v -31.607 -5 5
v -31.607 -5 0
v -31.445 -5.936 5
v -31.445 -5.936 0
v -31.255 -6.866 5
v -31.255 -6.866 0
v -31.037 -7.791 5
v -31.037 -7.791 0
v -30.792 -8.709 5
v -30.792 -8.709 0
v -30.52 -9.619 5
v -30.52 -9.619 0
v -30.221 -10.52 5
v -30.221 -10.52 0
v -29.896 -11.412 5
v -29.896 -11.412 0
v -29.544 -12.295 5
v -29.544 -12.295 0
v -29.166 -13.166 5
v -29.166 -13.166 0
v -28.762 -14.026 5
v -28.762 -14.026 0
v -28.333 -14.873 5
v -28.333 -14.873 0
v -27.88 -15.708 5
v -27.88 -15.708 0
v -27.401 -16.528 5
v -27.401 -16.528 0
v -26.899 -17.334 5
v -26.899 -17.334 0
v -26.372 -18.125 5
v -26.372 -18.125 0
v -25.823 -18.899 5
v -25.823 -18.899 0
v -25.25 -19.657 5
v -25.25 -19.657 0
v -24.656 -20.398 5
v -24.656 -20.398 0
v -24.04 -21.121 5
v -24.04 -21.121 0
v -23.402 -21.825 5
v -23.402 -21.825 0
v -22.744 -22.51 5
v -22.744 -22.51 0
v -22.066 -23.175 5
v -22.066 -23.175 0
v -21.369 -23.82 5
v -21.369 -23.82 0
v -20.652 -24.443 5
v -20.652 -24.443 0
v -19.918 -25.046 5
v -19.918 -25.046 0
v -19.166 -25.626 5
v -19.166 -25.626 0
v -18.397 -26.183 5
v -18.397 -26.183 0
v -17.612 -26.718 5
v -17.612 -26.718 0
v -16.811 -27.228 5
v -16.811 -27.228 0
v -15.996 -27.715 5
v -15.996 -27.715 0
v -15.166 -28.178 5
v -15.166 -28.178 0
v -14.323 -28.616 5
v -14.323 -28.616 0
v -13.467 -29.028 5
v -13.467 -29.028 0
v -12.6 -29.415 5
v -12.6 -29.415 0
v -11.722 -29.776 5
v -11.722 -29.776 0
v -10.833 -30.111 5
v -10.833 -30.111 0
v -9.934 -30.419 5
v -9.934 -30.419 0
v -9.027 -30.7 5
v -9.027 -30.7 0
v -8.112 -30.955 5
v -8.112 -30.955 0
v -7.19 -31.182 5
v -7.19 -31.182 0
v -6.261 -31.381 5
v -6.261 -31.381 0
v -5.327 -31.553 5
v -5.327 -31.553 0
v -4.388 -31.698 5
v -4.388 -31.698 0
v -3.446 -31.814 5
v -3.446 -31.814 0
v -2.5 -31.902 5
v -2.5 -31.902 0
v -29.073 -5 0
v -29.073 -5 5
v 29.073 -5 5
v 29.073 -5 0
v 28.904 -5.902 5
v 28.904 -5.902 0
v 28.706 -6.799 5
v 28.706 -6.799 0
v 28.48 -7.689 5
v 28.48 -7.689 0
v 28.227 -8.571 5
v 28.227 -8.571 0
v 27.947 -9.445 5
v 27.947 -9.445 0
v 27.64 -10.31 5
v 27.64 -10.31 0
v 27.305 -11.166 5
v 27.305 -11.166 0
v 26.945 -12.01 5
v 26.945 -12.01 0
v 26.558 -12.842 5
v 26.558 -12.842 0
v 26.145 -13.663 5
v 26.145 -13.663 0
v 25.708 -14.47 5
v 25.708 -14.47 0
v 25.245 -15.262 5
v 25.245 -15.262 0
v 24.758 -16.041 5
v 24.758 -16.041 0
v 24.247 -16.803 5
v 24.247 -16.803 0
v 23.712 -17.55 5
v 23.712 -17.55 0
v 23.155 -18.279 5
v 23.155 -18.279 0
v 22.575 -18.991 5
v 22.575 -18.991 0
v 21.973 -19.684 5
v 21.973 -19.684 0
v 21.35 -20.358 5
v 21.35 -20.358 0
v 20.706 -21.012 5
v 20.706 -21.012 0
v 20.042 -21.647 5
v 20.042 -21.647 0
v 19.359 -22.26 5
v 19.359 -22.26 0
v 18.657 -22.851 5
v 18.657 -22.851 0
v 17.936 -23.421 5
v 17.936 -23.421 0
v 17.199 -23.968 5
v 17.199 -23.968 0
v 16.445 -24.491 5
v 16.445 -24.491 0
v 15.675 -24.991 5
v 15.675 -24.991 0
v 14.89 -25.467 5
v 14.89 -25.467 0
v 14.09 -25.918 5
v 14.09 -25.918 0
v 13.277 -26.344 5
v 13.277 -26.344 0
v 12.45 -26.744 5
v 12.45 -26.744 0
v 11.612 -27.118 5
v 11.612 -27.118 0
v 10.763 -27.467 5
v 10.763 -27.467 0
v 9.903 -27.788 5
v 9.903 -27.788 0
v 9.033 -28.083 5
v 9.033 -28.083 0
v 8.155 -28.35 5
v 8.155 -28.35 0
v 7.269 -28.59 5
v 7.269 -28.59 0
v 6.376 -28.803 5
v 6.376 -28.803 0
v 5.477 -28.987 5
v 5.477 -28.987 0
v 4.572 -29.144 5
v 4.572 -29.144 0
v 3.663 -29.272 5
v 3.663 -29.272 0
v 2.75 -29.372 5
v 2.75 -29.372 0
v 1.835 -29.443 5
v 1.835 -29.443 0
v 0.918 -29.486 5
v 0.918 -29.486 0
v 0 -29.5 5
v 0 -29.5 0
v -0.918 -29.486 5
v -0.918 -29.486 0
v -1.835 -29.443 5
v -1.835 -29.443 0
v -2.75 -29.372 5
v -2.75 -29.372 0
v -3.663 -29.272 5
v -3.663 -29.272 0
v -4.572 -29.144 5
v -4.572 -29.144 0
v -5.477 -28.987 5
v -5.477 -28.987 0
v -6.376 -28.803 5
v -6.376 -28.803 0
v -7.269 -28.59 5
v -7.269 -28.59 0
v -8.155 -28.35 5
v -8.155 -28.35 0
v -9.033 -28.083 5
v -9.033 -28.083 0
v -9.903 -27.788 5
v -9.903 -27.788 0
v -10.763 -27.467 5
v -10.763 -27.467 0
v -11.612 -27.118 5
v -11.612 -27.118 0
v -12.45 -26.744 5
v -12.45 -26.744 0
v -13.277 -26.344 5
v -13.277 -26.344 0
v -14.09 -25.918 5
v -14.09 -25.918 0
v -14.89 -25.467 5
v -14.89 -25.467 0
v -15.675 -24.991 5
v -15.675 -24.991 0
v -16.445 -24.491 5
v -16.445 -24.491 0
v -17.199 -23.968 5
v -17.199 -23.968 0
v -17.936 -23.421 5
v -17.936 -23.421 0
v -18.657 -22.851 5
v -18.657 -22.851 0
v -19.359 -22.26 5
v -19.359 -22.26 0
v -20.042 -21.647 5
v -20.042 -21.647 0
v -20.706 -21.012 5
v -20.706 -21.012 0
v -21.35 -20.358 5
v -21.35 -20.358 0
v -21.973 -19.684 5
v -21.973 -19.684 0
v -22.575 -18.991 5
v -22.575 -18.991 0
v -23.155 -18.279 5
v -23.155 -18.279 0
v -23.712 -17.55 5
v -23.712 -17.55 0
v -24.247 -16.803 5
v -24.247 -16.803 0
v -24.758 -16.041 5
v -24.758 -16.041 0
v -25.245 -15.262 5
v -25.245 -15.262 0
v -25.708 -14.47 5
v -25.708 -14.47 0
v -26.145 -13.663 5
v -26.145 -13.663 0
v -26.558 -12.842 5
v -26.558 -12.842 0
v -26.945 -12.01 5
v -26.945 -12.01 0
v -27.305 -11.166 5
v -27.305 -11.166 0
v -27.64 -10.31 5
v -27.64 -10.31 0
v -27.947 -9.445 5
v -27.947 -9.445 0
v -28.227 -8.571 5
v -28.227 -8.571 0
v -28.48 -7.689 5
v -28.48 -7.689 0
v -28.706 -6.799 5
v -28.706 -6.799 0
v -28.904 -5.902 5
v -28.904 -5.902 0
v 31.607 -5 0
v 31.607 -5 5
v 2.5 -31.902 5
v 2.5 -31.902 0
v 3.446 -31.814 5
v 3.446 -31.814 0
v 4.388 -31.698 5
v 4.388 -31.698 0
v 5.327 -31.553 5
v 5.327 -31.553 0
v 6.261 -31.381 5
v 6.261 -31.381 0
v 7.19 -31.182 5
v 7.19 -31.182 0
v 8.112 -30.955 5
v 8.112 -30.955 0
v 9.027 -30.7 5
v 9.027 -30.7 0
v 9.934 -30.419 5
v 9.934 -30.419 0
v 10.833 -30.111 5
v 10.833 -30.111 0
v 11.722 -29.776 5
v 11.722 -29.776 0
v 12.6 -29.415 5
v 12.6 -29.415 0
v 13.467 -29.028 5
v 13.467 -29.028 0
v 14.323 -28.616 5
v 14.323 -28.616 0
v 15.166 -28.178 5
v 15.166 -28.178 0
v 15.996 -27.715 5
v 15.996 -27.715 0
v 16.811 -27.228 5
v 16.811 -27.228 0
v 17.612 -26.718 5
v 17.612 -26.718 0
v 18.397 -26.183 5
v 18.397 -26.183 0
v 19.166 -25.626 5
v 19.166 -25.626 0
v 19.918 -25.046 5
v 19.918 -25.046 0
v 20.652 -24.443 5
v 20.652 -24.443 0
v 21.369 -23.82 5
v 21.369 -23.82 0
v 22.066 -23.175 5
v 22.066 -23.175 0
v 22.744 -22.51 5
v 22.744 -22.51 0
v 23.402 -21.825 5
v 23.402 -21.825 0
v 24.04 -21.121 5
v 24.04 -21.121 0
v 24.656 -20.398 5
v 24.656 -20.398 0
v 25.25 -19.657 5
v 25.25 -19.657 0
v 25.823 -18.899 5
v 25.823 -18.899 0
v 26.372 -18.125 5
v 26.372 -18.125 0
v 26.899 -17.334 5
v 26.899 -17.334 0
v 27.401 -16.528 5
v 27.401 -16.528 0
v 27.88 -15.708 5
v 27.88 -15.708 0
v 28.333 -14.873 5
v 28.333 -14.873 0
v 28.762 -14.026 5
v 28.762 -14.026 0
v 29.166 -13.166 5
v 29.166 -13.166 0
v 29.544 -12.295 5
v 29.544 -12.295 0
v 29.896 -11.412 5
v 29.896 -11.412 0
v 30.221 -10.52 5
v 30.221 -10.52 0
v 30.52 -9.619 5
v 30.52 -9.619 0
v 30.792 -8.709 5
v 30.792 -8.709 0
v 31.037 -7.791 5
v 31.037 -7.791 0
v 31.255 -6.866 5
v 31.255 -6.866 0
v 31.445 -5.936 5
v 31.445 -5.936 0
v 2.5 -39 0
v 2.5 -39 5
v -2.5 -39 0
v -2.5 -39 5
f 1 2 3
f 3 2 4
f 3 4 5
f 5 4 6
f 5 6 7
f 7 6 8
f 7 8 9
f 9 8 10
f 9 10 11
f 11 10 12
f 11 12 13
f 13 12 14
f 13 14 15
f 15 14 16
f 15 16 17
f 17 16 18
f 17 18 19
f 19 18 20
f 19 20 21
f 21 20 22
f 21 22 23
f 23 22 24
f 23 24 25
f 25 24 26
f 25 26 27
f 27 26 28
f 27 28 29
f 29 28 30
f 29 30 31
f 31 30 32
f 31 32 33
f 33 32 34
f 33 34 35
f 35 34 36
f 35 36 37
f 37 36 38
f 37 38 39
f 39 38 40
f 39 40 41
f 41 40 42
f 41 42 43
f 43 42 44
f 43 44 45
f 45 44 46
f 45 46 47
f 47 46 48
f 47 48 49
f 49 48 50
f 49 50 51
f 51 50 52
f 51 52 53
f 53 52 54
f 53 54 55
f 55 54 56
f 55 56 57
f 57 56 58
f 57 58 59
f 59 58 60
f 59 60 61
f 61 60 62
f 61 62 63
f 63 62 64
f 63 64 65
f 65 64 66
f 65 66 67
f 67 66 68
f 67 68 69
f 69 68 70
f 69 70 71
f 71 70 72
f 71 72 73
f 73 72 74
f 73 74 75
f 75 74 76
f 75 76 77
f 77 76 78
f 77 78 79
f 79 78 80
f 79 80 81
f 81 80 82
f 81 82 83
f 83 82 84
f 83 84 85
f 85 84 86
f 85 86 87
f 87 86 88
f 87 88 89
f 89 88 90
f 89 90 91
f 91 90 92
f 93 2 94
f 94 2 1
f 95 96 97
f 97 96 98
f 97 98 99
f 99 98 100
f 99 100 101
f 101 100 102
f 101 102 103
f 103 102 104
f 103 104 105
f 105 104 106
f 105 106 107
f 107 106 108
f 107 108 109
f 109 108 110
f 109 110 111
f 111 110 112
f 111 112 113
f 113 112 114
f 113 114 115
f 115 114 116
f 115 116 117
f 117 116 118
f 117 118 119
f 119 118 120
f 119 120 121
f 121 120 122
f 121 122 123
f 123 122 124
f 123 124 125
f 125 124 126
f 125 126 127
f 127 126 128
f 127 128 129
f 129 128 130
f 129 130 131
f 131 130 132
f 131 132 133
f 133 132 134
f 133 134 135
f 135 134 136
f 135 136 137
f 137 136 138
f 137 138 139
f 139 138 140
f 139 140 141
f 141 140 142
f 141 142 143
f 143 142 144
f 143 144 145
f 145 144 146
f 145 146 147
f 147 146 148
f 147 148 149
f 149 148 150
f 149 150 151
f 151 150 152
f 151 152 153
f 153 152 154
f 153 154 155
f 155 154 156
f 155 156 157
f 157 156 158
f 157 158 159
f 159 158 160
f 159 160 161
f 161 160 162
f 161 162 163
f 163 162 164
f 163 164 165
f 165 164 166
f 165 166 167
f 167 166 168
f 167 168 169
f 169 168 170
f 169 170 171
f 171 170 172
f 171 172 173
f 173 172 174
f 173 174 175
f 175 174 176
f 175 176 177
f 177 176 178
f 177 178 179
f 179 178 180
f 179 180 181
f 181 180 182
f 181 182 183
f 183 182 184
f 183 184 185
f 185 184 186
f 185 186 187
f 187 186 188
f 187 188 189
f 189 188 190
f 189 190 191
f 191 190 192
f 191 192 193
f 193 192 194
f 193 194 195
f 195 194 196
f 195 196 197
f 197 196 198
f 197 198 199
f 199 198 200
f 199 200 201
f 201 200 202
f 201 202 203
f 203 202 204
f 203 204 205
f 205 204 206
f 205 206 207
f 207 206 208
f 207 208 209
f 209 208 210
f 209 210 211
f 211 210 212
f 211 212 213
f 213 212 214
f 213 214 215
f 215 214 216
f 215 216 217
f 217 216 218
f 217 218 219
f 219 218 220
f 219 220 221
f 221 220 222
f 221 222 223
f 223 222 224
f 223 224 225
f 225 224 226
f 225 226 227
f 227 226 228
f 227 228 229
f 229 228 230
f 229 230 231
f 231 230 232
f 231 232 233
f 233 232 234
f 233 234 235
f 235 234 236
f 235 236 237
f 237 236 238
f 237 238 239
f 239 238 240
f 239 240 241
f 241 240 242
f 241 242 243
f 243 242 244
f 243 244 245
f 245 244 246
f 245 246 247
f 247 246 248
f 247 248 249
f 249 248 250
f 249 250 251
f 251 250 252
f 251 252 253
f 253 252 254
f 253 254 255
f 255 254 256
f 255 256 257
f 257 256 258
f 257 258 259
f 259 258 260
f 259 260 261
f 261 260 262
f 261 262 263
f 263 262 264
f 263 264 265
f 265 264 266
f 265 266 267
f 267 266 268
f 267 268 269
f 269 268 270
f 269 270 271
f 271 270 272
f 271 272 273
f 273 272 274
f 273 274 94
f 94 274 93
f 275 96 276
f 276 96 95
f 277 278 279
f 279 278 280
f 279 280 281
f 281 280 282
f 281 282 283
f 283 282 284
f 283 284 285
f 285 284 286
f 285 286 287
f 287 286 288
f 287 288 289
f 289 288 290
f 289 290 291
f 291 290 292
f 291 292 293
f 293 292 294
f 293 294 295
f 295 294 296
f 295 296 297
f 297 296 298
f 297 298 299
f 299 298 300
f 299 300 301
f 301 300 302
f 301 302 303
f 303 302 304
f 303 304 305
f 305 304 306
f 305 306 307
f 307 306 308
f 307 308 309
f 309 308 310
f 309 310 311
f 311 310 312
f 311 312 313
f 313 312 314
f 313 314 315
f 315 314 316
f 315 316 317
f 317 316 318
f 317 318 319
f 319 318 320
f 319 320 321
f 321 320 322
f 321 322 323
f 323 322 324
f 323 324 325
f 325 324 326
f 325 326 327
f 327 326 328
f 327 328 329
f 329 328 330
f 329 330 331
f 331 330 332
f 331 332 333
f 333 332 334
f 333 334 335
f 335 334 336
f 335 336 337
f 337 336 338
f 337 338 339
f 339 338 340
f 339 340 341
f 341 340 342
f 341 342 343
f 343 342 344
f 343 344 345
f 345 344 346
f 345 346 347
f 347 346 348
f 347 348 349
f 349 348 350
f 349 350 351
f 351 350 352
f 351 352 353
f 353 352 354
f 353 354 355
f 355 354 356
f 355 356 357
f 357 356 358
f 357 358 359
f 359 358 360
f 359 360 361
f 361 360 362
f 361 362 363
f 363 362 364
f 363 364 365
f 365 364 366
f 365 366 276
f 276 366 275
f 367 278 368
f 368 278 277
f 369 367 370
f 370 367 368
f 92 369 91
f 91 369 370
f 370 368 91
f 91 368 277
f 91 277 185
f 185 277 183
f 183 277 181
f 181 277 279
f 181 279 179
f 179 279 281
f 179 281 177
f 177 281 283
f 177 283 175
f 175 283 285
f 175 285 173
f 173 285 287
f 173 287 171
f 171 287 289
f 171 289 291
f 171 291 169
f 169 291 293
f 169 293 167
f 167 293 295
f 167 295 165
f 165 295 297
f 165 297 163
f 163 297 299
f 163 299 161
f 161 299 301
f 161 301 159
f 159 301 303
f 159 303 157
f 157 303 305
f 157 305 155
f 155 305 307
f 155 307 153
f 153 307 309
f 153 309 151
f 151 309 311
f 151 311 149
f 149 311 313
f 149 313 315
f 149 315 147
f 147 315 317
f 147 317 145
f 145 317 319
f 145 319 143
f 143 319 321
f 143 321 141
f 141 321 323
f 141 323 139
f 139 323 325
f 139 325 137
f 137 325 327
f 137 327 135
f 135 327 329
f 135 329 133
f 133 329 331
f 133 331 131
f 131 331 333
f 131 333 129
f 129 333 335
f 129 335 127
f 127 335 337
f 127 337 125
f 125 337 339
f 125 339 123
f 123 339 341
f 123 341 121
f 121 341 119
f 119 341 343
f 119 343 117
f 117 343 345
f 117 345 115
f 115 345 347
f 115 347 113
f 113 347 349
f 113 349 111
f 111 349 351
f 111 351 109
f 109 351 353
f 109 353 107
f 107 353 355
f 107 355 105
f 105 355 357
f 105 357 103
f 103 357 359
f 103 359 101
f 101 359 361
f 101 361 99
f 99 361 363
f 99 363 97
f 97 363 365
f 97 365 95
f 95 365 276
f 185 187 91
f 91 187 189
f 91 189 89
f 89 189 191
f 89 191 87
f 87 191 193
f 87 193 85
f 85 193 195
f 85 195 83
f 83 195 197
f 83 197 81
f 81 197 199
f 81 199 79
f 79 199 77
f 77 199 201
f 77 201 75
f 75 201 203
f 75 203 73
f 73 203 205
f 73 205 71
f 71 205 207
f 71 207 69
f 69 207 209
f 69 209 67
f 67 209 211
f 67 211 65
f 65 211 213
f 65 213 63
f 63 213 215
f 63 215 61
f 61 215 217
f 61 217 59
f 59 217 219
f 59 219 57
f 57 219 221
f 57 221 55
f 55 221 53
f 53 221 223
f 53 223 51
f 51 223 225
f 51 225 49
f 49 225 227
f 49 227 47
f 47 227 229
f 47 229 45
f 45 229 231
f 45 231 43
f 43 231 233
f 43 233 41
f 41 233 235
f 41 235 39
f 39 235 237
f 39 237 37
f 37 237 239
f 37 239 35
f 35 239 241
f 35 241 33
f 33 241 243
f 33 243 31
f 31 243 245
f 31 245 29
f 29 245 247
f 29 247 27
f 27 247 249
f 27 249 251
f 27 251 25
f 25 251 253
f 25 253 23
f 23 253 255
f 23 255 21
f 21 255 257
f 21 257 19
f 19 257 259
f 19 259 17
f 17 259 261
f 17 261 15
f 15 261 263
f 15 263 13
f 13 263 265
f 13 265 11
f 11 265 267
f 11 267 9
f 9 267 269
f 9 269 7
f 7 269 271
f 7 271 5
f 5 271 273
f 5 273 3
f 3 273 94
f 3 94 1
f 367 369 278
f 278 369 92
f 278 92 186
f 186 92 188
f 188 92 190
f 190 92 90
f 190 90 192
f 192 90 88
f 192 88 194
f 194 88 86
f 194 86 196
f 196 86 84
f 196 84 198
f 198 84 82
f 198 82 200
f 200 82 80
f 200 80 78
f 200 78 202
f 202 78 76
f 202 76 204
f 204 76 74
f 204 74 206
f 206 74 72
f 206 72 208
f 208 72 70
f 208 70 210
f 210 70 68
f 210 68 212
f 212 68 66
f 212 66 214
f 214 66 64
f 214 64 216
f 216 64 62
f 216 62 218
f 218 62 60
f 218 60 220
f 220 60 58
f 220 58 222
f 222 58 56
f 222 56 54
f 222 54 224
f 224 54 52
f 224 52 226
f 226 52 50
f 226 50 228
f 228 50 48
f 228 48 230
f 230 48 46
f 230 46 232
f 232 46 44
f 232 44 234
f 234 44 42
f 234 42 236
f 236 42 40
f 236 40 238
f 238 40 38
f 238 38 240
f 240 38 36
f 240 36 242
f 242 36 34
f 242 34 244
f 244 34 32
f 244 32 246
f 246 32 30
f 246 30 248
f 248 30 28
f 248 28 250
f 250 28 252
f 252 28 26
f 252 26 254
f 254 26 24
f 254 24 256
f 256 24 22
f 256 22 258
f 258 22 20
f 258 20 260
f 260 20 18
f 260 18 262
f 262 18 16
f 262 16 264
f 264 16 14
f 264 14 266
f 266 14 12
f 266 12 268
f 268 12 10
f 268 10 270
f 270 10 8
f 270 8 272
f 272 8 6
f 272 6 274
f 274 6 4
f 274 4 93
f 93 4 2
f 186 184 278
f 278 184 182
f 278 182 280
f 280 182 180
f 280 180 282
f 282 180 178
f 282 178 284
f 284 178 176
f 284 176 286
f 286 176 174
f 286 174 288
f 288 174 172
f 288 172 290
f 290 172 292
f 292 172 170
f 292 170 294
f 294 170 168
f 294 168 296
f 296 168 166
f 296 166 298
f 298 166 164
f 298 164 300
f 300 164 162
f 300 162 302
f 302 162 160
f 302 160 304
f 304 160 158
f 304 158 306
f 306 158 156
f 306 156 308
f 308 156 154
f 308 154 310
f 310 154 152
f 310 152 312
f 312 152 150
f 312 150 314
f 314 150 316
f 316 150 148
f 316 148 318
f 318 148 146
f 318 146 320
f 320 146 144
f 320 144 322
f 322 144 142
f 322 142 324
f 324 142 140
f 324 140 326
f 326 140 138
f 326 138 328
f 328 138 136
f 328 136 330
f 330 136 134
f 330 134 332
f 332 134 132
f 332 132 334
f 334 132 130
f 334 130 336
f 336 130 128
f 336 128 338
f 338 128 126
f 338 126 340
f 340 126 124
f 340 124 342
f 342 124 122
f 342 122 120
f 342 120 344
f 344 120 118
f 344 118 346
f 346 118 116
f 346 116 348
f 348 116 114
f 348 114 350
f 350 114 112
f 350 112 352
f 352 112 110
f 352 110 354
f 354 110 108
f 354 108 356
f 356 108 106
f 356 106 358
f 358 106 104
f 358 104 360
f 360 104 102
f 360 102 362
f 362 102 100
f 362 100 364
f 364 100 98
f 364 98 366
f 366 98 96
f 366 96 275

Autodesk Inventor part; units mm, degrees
ref_plane "YZ Plane" through (0, 0, 0) normal (1, 0, 0) x (0, 1, 0)
ref_plane "XZ Plane" through (0, 0, 0) normal (0, 1, 0) x (-1, 0, 0)
ref_plane "XY Plane" through (0, 0, 0) normal (0, 0, 1) x (1, 0, 0)
sketch "Sketch1" plane through (0, 0, 0) normal (0, 0, 1) x (1, 0, 0)
  arc A0 (-25.4018, -15) -> (25.4018, -15) centre (0, 0) ccw
  line L0 (2.5, -32) -> (2.5, -39)
  line L1 (2.5, -39) -> (-2.5, -39)
  line L2 (-2.5, -39) -> (-2.5, -32)
  line L3 (-2.5, -32) -> (-2.5, -31.9022)
  line L4 (2.5, -32) -> (2.5, -31.9022)
  arc A1 (-28.2666, -15) -> (-2.5, -31.9022) centre (0, 0) ccw
  arc A2 (2.5, -31.9022) -> (28.2666, -15) centre (0, 0) ccw
  arc A3 (-27.7534, -10) -> (27.7534, -10) centre (0, 0) ccw
  arc A4 (-30.3974, -10) -> (-2.5, -31.9022) centre (0, 0) ccw
  arc A5 (2.5, -31.9022) -> (30.3974, -10) centre (0, 0) ccw
  circle A6 centre (0, 0) radius 29.5
  arc A7 (2.5, -31.9022) -> (-2.5, -31.9022) centre (0, 0) ccw
  line L5 (-29.0732, -5) -> (-31.607, -5)
  line L6 (29.0732, -5) -> (31.607, -5)
  point P0 (25.4018, -15)
  point P1 (-28.2666, -15)
  point P2 (27.7534, -10)
  point P3 (-30.3974, -10)
  dimension "d43" = 5
  dimension "d64" = 7
extrude "Extrusion7" add sketch "Sketch1" along normal blind 5 contours A0 A3 A6 L6 A7 A5 A2 L4 L0 L1 L2 L3 A1 A4 L5
properties part number "Clip_TestFitV1"
